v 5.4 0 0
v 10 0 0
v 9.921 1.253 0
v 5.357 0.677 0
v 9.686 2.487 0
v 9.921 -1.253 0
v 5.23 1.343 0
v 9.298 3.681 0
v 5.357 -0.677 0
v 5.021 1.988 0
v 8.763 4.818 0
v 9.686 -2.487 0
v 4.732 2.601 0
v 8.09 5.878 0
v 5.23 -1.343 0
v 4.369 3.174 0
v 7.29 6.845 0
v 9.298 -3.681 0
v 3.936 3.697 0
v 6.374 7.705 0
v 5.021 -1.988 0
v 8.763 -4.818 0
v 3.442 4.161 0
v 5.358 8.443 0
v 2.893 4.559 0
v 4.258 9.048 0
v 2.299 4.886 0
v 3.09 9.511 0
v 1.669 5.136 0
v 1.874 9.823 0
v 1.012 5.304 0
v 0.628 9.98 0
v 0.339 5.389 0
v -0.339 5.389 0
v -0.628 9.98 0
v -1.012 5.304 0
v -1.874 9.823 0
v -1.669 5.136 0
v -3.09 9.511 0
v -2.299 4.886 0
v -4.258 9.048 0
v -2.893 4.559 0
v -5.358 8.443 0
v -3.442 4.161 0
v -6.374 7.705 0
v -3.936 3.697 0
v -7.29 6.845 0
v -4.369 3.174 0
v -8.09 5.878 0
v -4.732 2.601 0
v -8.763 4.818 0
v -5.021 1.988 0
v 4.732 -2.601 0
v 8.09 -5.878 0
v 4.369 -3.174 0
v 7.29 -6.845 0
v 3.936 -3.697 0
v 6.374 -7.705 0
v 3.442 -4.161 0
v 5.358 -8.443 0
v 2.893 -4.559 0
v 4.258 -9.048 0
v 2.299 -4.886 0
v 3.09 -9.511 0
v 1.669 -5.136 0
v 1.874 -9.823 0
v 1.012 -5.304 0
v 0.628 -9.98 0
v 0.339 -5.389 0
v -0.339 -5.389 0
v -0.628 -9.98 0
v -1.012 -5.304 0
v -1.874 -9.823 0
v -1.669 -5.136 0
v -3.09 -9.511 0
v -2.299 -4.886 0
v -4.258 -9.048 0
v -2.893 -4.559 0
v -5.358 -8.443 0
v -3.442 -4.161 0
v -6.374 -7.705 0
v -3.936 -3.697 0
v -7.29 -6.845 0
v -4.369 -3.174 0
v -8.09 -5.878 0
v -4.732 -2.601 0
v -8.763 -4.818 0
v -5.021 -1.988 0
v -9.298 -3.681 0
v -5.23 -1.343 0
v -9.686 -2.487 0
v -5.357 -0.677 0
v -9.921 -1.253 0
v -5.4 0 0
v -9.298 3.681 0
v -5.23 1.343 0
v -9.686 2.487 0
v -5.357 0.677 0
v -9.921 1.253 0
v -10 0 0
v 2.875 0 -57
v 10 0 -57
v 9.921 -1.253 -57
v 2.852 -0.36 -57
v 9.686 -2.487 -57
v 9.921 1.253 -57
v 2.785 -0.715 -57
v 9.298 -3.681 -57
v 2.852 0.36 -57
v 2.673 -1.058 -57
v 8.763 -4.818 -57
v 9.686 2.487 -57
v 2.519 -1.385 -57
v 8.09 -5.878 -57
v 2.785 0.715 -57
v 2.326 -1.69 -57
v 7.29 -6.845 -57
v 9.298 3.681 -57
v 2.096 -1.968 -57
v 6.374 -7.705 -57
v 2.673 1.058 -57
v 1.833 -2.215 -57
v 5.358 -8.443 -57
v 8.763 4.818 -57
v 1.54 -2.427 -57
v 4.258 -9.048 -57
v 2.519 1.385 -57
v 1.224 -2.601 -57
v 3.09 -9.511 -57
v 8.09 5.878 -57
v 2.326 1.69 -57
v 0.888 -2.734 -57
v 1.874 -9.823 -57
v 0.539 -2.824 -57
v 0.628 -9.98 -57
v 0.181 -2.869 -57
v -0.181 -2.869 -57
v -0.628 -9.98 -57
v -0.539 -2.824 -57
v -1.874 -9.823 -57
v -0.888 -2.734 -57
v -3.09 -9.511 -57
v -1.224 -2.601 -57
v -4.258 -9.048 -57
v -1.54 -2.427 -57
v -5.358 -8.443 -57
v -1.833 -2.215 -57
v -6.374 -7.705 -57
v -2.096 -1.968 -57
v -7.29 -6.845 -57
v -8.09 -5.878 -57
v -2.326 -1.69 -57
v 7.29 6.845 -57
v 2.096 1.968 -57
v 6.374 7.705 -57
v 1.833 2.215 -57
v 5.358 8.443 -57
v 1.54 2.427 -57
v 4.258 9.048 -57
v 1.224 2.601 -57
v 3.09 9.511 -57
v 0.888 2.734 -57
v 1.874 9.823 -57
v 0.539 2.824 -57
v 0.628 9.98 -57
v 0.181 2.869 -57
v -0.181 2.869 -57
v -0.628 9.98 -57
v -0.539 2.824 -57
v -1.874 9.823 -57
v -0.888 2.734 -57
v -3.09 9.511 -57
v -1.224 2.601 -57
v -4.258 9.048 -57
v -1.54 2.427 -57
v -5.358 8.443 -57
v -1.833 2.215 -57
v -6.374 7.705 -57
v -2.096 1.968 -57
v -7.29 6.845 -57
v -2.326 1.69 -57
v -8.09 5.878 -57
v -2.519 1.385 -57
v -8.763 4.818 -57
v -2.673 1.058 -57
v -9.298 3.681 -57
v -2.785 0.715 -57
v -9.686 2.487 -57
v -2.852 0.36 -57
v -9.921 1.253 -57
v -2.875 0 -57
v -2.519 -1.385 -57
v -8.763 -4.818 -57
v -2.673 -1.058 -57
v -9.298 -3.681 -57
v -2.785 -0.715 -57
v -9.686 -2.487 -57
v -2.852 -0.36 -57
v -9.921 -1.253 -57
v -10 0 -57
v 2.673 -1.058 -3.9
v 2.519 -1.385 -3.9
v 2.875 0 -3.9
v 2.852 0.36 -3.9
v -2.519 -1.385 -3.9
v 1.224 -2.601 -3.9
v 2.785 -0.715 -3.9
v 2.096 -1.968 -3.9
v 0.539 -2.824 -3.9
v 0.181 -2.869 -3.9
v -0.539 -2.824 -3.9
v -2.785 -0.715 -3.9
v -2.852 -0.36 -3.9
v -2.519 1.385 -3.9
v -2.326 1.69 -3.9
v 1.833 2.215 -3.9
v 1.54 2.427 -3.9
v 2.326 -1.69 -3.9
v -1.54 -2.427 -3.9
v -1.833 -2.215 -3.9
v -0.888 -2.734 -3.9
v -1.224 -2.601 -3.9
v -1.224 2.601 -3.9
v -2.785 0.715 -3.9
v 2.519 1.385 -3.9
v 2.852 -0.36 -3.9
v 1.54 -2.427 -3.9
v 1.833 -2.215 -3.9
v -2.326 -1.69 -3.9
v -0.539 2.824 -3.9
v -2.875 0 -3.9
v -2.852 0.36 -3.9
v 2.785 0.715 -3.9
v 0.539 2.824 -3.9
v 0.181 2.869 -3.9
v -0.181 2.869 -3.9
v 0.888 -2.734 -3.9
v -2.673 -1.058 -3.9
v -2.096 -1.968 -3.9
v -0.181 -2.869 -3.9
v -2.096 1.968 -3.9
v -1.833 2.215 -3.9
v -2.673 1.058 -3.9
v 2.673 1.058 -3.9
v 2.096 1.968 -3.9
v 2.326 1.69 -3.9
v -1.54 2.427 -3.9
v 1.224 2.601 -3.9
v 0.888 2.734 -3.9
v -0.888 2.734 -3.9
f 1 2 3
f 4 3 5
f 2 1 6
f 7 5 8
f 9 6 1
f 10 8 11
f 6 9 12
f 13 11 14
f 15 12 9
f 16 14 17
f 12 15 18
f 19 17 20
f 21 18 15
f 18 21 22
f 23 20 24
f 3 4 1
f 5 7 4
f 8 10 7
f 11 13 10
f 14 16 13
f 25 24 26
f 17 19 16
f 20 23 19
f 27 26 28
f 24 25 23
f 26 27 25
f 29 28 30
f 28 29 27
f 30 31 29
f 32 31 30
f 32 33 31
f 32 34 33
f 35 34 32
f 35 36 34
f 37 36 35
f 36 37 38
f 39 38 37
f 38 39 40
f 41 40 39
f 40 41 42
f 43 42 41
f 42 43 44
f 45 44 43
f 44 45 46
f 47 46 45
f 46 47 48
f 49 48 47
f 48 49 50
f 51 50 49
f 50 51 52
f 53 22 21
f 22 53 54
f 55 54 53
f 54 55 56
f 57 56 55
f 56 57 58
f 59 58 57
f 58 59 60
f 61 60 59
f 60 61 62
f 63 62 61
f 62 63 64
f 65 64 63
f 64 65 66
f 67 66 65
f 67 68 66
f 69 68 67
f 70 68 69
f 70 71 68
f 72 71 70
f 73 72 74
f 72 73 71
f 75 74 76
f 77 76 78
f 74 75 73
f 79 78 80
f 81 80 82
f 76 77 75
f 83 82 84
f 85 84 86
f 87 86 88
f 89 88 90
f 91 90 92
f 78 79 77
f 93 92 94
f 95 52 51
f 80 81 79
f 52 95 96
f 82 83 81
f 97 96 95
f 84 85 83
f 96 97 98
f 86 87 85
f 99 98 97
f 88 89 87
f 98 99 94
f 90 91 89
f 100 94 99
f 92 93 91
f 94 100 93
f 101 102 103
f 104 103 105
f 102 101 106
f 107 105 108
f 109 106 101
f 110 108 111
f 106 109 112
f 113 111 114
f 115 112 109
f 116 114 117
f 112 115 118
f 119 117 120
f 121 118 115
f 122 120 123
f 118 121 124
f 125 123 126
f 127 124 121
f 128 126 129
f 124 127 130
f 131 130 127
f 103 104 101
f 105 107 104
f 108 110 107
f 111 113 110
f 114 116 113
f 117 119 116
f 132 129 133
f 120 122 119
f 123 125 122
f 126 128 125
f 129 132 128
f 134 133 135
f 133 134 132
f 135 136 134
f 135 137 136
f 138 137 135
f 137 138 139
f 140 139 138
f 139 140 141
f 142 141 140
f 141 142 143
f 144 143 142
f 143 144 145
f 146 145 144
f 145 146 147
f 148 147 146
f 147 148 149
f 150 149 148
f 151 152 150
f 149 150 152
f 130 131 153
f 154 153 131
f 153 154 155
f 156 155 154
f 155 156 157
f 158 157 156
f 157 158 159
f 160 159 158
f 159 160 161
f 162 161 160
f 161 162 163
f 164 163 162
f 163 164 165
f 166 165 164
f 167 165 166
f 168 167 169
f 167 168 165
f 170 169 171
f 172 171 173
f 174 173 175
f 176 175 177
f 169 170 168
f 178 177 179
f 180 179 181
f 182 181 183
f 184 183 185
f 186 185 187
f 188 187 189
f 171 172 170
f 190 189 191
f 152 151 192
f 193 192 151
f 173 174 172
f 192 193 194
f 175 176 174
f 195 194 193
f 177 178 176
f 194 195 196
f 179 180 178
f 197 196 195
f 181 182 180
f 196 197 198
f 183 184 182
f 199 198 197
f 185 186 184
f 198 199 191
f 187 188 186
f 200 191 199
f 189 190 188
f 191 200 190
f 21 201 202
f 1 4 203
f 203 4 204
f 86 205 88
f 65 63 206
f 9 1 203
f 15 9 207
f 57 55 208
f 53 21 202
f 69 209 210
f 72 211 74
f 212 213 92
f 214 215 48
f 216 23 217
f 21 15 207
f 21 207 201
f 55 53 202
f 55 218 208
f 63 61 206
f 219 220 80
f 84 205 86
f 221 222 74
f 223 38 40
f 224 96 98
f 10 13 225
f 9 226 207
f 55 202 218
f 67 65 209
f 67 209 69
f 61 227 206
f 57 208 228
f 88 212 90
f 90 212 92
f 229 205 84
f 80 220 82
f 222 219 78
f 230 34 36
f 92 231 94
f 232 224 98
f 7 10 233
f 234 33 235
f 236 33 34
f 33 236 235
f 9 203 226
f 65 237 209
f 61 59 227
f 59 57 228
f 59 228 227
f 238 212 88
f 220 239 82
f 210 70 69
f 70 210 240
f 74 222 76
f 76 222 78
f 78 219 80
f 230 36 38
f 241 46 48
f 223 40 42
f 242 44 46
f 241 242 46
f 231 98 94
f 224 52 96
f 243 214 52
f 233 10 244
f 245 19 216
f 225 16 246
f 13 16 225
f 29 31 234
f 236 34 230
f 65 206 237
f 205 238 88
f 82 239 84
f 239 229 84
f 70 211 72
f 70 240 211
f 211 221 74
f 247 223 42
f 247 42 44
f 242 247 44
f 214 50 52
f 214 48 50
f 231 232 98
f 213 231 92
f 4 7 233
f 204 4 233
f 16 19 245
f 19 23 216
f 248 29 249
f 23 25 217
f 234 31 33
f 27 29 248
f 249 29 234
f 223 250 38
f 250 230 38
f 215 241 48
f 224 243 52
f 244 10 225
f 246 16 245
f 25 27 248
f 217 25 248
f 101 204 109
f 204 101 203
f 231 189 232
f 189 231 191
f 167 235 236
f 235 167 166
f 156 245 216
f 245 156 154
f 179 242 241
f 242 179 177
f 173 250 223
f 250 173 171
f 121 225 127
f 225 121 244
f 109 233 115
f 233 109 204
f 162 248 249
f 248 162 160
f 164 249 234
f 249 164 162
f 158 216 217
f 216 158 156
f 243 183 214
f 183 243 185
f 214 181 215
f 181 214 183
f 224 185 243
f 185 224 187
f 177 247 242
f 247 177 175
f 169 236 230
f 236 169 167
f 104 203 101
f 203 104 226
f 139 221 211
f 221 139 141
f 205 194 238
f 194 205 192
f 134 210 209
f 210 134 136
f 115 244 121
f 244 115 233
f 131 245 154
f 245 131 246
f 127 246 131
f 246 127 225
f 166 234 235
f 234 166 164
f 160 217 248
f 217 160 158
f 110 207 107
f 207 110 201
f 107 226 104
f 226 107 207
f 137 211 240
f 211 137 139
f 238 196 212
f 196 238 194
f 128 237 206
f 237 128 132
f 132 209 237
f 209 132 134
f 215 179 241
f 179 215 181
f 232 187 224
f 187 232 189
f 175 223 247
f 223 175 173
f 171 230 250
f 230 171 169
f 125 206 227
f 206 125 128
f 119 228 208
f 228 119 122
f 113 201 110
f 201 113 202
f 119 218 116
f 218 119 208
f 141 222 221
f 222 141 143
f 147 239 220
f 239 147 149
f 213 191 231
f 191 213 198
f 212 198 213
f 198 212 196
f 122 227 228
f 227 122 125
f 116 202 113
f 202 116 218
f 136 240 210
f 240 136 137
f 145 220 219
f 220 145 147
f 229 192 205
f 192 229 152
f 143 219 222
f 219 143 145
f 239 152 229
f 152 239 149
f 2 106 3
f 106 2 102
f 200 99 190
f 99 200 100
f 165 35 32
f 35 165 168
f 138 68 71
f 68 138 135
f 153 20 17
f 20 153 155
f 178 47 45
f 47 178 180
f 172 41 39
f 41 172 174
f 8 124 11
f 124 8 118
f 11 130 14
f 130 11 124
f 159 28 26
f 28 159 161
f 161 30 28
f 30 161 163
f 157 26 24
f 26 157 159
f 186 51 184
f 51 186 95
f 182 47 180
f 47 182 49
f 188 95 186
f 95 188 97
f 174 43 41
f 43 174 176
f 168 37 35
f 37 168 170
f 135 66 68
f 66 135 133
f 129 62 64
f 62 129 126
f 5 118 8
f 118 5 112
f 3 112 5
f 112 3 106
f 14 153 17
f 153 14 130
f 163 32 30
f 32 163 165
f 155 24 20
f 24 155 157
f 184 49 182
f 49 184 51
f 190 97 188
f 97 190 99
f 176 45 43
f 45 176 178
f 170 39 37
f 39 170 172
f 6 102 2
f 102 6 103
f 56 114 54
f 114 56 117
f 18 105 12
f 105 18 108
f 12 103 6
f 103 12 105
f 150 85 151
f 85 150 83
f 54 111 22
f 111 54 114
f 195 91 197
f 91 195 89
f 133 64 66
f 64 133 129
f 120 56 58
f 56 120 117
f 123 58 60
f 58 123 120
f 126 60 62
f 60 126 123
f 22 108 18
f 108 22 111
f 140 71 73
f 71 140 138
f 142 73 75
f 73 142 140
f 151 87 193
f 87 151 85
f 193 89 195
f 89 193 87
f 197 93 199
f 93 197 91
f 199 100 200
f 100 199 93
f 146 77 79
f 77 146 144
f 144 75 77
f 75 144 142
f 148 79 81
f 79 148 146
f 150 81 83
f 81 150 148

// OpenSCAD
$fn = 50;


difference() {
	union() {
		translate(v = [0, 0, -57.0000000000]) {
			cylinder(h = 57, r = 10.0000000000);
		}
		cylinder(h = 0, r = 19.0000000000);
	}
	union() {
		translate(v = [0, 0, 0]) {
			rotate(a = [0, 0, 0]) {
				difference() {
					union() {
						#translate(v = [0, 0, -57.0000000000]) {
							cylinder(h = 57, r = 2.6000000000);
						}
						#translate(v = [0, 0, -3.9000000000]) {
							cylinder(h = 3.9000000000, r1 = 2.8750000000, r2 = 5.4000000000);
						}
						#translate(v = [0, 0, -57.0000000000]) {
							cylinder(h = 57, r = 2.8750000000);
						}
						#translate(v = [0, 0, -57.0000000000]) {
							cylinder(h = 57, r = 2.6000000000);
						}
					}
					union();
				}
			}
		}
	}
}
